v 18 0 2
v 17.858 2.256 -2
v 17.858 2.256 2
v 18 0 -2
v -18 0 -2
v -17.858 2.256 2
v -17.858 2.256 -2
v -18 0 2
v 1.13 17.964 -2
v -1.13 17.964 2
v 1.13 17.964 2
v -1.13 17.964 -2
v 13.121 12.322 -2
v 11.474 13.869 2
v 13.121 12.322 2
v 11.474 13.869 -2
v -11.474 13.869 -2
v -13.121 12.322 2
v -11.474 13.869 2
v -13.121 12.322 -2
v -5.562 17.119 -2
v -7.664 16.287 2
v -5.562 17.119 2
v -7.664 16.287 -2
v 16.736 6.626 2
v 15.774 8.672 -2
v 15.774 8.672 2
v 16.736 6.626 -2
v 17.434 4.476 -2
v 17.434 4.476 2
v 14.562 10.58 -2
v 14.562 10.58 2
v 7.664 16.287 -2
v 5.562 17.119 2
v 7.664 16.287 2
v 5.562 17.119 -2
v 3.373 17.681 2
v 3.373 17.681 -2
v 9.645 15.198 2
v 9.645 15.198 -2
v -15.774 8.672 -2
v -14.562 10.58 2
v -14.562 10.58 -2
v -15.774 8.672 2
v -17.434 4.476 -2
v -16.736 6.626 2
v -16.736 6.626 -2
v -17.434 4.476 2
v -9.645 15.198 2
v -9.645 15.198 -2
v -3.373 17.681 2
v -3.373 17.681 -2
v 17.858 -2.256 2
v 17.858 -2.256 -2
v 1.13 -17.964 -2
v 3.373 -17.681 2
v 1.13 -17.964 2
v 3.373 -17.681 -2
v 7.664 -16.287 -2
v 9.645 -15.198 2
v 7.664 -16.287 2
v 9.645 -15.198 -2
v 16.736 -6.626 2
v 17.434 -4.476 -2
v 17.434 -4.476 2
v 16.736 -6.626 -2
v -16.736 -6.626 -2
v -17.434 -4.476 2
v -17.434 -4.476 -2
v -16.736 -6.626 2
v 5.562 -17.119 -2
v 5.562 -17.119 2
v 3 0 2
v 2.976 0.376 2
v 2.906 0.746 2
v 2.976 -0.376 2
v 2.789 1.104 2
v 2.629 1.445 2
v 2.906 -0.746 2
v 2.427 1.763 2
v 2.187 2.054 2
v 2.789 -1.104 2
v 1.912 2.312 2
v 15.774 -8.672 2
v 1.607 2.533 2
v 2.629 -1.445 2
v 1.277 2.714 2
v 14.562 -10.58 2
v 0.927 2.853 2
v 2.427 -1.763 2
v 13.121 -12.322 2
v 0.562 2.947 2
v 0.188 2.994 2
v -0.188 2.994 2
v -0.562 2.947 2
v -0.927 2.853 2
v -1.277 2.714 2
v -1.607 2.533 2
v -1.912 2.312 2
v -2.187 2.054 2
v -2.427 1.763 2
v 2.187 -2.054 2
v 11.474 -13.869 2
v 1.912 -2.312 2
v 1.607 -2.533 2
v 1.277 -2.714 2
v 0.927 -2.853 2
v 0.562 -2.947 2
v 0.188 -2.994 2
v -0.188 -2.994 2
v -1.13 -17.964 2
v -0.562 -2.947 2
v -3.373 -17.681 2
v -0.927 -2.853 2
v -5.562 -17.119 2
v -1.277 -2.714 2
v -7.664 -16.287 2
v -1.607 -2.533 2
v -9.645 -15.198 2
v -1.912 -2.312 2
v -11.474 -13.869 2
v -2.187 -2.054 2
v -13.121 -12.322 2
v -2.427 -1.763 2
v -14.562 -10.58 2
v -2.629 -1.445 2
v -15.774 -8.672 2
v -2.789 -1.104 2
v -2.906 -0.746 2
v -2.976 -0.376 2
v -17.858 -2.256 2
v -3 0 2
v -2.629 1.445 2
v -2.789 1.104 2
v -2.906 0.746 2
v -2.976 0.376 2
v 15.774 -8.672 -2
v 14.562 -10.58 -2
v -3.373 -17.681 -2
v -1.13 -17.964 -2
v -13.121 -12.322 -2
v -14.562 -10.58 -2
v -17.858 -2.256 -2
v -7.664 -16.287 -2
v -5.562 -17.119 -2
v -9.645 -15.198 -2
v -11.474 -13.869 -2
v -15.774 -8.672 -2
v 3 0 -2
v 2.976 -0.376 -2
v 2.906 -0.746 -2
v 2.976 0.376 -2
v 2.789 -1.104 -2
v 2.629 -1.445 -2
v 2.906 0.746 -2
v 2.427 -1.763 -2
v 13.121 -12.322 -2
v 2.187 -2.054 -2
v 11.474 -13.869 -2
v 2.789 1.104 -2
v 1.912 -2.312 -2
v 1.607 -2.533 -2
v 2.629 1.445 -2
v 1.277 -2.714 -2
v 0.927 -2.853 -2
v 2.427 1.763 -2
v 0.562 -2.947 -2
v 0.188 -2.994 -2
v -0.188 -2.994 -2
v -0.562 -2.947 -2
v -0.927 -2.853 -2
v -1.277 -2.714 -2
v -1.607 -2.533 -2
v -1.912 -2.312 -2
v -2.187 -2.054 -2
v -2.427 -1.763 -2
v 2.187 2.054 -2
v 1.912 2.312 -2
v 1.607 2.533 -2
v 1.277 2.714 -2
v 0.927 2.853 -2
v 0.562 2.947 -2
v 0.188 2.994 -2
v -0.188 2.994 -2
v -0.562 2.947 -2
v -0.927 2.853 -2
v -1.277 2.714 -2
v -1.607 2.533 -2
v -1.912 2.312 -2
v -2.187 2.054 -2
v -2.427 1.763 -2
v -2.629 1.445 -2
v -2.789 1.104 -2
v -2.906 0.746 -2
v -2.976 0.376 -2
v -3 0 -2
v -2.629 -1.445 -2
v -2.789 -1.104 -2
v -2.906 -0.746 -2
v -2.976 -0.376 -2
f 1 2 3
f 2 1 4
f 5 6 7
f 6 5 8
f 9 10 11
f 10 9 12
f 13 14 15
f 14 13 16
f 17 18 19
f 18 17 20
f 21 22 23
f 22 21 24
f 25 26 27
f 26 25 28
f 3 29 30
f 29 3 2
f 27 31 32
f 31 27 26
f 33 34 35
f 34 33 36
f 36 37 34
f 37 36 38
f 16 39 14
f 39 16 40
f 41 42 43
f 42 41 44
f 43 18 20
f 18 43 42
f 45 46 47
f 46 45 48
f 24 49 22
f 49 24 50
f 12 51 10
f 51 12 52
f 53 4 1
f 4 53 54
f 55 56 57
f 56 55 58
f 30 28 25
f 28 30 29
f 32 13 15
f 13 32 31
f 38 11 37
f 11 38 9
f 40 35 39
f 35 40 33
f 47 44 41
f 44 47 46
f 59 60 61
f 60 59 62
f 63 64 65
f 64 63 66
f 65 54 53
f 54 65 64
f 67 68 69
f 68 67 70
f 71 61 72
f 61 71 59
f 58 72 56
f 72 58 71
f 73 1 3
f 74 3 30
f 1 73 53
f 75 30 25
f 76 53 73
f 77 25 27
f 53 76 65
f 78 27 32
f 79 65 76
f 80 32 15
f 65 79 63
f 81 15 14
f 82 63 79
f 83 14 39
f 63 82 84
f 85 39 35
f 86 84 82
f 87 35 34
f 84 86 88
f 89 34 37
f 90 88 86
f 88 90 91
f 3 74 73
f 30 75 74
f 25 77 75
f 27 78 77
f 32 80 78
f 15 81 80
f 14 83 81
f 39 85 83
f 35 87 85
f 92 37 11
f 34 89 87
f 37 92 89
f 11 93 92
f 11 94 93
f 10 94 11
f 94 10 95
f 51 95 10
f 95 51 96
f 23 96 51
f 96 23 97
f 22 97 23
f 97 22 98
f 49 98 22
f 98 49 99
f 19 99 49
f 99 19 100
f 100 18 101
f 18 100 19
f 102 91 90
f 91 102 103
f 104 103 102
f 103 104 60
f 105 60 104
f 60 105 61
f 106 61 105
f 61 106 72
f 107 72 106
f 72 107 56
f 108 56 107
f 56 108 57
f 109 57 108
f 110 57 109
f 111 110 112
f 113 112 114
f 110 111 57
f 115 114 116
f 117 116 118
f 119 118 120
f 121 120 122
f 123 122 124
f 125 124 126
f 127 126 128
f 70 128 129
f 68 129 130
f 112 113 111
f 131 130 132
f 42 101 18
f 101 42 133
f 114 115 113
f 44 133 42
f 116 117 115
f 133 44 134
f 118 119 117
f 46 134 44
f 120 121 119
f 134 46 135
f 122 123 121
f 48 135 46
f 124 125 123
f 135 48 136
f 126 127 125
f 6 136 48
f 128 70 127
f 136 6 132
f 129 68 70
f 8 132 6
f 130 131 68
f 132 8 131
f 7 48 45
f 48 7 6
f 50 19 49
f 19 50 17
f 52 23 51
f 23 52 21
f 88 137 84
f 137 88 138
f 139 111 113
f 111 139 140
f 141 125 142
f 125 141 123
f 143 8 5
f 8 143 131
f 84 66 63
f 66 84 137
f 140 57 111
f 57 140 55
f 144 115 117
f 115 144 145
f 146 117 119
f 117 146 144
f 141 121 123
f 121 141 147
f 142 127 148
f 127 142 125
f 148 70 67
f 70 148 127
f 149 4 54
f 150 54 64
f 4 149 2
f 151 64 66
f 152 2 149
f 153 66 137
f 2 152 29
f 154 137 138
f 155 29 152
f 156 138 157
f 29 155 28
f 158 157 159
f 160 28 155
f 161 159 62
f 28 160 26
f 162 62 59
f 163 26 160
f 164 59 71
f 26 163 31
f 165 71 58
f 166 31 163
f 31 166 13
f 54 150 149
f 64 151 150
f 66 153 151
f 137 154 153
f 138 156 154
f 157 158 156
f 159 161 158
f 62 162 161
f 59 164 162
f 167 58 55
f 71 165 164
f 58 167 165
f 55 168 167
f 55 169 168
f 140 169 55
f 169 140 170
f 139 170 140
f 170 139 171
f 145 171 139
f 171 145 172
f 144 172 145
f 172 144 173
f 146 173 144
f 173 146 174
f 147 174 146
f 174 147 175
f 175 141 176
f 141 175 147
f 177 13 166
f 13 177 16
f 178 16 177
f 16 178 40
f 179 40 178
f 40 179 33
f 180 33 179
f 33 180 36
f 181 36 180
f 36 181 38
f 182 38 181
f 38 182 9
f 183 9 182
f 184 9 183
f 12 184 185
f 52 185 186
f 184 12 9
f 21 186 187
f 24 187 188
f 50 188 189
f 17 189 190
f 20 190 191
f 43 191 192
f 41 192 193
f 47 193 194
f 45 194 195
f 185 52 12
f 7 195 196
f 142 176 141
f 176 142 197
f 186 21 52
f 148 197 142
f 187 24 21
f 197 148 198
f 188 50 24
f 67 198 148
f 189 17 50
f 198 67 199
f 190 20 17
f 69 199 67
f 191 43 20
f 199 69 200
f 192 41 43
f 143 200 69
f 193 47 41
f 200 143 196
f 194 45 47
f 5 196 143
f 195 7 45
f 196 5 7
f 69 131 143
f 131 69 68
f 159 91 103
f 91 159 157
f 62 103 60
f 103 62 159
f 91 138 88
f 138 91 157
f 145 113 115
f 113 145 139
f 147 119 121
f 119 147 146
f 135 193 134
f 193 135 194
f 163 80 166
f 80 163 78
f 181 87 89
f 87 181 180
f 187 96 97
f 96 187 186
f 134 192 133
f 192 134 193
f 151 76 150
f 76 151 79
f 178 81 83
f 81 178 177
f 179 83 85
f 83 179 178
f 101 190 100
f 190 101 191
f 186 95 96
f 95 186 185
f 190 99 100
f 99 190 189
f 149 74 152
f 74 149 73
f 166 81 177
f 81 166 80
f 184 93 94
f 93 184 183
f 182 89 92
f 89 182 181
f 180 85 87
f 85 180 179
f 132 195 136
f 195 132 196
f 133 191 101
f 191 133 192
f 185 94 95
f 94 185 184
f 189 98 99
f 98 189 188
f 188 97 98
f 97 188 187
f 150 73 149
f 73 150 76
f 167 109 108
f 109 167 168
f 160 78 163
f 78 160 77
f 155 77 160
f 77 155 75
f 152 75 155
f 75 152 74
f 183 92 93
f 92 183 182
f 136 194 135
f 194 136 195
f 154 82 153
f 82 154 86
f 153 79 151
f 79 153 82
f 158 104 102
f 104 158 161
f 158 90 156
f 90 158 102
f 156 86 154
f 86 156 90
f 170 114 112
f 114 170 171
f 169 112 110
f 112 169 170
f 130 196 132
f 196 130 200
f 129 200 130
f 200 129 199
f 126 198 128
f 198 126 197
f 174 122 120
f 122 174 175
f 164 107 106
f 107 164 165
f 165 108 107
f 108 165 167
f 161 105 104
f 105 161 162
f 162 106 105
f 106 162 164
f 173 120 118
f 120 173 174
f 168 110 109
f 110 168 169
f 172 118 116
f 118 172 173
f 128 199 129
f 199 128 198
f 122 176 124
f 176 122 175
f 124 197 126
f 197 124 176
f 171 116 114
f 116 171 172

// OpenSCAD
$fn = 50;


difference() {
	union() {
		translate(v = [0, 0, -2.0000000000]) {
			cylinder(h = 4, r = 18.0000000000);
		}
	}
	union() {
		translate(v = [0, 0, -100.0000000000]) {
			cylinder(h = 200, r = 3.0000000000);
		}
	}
}
